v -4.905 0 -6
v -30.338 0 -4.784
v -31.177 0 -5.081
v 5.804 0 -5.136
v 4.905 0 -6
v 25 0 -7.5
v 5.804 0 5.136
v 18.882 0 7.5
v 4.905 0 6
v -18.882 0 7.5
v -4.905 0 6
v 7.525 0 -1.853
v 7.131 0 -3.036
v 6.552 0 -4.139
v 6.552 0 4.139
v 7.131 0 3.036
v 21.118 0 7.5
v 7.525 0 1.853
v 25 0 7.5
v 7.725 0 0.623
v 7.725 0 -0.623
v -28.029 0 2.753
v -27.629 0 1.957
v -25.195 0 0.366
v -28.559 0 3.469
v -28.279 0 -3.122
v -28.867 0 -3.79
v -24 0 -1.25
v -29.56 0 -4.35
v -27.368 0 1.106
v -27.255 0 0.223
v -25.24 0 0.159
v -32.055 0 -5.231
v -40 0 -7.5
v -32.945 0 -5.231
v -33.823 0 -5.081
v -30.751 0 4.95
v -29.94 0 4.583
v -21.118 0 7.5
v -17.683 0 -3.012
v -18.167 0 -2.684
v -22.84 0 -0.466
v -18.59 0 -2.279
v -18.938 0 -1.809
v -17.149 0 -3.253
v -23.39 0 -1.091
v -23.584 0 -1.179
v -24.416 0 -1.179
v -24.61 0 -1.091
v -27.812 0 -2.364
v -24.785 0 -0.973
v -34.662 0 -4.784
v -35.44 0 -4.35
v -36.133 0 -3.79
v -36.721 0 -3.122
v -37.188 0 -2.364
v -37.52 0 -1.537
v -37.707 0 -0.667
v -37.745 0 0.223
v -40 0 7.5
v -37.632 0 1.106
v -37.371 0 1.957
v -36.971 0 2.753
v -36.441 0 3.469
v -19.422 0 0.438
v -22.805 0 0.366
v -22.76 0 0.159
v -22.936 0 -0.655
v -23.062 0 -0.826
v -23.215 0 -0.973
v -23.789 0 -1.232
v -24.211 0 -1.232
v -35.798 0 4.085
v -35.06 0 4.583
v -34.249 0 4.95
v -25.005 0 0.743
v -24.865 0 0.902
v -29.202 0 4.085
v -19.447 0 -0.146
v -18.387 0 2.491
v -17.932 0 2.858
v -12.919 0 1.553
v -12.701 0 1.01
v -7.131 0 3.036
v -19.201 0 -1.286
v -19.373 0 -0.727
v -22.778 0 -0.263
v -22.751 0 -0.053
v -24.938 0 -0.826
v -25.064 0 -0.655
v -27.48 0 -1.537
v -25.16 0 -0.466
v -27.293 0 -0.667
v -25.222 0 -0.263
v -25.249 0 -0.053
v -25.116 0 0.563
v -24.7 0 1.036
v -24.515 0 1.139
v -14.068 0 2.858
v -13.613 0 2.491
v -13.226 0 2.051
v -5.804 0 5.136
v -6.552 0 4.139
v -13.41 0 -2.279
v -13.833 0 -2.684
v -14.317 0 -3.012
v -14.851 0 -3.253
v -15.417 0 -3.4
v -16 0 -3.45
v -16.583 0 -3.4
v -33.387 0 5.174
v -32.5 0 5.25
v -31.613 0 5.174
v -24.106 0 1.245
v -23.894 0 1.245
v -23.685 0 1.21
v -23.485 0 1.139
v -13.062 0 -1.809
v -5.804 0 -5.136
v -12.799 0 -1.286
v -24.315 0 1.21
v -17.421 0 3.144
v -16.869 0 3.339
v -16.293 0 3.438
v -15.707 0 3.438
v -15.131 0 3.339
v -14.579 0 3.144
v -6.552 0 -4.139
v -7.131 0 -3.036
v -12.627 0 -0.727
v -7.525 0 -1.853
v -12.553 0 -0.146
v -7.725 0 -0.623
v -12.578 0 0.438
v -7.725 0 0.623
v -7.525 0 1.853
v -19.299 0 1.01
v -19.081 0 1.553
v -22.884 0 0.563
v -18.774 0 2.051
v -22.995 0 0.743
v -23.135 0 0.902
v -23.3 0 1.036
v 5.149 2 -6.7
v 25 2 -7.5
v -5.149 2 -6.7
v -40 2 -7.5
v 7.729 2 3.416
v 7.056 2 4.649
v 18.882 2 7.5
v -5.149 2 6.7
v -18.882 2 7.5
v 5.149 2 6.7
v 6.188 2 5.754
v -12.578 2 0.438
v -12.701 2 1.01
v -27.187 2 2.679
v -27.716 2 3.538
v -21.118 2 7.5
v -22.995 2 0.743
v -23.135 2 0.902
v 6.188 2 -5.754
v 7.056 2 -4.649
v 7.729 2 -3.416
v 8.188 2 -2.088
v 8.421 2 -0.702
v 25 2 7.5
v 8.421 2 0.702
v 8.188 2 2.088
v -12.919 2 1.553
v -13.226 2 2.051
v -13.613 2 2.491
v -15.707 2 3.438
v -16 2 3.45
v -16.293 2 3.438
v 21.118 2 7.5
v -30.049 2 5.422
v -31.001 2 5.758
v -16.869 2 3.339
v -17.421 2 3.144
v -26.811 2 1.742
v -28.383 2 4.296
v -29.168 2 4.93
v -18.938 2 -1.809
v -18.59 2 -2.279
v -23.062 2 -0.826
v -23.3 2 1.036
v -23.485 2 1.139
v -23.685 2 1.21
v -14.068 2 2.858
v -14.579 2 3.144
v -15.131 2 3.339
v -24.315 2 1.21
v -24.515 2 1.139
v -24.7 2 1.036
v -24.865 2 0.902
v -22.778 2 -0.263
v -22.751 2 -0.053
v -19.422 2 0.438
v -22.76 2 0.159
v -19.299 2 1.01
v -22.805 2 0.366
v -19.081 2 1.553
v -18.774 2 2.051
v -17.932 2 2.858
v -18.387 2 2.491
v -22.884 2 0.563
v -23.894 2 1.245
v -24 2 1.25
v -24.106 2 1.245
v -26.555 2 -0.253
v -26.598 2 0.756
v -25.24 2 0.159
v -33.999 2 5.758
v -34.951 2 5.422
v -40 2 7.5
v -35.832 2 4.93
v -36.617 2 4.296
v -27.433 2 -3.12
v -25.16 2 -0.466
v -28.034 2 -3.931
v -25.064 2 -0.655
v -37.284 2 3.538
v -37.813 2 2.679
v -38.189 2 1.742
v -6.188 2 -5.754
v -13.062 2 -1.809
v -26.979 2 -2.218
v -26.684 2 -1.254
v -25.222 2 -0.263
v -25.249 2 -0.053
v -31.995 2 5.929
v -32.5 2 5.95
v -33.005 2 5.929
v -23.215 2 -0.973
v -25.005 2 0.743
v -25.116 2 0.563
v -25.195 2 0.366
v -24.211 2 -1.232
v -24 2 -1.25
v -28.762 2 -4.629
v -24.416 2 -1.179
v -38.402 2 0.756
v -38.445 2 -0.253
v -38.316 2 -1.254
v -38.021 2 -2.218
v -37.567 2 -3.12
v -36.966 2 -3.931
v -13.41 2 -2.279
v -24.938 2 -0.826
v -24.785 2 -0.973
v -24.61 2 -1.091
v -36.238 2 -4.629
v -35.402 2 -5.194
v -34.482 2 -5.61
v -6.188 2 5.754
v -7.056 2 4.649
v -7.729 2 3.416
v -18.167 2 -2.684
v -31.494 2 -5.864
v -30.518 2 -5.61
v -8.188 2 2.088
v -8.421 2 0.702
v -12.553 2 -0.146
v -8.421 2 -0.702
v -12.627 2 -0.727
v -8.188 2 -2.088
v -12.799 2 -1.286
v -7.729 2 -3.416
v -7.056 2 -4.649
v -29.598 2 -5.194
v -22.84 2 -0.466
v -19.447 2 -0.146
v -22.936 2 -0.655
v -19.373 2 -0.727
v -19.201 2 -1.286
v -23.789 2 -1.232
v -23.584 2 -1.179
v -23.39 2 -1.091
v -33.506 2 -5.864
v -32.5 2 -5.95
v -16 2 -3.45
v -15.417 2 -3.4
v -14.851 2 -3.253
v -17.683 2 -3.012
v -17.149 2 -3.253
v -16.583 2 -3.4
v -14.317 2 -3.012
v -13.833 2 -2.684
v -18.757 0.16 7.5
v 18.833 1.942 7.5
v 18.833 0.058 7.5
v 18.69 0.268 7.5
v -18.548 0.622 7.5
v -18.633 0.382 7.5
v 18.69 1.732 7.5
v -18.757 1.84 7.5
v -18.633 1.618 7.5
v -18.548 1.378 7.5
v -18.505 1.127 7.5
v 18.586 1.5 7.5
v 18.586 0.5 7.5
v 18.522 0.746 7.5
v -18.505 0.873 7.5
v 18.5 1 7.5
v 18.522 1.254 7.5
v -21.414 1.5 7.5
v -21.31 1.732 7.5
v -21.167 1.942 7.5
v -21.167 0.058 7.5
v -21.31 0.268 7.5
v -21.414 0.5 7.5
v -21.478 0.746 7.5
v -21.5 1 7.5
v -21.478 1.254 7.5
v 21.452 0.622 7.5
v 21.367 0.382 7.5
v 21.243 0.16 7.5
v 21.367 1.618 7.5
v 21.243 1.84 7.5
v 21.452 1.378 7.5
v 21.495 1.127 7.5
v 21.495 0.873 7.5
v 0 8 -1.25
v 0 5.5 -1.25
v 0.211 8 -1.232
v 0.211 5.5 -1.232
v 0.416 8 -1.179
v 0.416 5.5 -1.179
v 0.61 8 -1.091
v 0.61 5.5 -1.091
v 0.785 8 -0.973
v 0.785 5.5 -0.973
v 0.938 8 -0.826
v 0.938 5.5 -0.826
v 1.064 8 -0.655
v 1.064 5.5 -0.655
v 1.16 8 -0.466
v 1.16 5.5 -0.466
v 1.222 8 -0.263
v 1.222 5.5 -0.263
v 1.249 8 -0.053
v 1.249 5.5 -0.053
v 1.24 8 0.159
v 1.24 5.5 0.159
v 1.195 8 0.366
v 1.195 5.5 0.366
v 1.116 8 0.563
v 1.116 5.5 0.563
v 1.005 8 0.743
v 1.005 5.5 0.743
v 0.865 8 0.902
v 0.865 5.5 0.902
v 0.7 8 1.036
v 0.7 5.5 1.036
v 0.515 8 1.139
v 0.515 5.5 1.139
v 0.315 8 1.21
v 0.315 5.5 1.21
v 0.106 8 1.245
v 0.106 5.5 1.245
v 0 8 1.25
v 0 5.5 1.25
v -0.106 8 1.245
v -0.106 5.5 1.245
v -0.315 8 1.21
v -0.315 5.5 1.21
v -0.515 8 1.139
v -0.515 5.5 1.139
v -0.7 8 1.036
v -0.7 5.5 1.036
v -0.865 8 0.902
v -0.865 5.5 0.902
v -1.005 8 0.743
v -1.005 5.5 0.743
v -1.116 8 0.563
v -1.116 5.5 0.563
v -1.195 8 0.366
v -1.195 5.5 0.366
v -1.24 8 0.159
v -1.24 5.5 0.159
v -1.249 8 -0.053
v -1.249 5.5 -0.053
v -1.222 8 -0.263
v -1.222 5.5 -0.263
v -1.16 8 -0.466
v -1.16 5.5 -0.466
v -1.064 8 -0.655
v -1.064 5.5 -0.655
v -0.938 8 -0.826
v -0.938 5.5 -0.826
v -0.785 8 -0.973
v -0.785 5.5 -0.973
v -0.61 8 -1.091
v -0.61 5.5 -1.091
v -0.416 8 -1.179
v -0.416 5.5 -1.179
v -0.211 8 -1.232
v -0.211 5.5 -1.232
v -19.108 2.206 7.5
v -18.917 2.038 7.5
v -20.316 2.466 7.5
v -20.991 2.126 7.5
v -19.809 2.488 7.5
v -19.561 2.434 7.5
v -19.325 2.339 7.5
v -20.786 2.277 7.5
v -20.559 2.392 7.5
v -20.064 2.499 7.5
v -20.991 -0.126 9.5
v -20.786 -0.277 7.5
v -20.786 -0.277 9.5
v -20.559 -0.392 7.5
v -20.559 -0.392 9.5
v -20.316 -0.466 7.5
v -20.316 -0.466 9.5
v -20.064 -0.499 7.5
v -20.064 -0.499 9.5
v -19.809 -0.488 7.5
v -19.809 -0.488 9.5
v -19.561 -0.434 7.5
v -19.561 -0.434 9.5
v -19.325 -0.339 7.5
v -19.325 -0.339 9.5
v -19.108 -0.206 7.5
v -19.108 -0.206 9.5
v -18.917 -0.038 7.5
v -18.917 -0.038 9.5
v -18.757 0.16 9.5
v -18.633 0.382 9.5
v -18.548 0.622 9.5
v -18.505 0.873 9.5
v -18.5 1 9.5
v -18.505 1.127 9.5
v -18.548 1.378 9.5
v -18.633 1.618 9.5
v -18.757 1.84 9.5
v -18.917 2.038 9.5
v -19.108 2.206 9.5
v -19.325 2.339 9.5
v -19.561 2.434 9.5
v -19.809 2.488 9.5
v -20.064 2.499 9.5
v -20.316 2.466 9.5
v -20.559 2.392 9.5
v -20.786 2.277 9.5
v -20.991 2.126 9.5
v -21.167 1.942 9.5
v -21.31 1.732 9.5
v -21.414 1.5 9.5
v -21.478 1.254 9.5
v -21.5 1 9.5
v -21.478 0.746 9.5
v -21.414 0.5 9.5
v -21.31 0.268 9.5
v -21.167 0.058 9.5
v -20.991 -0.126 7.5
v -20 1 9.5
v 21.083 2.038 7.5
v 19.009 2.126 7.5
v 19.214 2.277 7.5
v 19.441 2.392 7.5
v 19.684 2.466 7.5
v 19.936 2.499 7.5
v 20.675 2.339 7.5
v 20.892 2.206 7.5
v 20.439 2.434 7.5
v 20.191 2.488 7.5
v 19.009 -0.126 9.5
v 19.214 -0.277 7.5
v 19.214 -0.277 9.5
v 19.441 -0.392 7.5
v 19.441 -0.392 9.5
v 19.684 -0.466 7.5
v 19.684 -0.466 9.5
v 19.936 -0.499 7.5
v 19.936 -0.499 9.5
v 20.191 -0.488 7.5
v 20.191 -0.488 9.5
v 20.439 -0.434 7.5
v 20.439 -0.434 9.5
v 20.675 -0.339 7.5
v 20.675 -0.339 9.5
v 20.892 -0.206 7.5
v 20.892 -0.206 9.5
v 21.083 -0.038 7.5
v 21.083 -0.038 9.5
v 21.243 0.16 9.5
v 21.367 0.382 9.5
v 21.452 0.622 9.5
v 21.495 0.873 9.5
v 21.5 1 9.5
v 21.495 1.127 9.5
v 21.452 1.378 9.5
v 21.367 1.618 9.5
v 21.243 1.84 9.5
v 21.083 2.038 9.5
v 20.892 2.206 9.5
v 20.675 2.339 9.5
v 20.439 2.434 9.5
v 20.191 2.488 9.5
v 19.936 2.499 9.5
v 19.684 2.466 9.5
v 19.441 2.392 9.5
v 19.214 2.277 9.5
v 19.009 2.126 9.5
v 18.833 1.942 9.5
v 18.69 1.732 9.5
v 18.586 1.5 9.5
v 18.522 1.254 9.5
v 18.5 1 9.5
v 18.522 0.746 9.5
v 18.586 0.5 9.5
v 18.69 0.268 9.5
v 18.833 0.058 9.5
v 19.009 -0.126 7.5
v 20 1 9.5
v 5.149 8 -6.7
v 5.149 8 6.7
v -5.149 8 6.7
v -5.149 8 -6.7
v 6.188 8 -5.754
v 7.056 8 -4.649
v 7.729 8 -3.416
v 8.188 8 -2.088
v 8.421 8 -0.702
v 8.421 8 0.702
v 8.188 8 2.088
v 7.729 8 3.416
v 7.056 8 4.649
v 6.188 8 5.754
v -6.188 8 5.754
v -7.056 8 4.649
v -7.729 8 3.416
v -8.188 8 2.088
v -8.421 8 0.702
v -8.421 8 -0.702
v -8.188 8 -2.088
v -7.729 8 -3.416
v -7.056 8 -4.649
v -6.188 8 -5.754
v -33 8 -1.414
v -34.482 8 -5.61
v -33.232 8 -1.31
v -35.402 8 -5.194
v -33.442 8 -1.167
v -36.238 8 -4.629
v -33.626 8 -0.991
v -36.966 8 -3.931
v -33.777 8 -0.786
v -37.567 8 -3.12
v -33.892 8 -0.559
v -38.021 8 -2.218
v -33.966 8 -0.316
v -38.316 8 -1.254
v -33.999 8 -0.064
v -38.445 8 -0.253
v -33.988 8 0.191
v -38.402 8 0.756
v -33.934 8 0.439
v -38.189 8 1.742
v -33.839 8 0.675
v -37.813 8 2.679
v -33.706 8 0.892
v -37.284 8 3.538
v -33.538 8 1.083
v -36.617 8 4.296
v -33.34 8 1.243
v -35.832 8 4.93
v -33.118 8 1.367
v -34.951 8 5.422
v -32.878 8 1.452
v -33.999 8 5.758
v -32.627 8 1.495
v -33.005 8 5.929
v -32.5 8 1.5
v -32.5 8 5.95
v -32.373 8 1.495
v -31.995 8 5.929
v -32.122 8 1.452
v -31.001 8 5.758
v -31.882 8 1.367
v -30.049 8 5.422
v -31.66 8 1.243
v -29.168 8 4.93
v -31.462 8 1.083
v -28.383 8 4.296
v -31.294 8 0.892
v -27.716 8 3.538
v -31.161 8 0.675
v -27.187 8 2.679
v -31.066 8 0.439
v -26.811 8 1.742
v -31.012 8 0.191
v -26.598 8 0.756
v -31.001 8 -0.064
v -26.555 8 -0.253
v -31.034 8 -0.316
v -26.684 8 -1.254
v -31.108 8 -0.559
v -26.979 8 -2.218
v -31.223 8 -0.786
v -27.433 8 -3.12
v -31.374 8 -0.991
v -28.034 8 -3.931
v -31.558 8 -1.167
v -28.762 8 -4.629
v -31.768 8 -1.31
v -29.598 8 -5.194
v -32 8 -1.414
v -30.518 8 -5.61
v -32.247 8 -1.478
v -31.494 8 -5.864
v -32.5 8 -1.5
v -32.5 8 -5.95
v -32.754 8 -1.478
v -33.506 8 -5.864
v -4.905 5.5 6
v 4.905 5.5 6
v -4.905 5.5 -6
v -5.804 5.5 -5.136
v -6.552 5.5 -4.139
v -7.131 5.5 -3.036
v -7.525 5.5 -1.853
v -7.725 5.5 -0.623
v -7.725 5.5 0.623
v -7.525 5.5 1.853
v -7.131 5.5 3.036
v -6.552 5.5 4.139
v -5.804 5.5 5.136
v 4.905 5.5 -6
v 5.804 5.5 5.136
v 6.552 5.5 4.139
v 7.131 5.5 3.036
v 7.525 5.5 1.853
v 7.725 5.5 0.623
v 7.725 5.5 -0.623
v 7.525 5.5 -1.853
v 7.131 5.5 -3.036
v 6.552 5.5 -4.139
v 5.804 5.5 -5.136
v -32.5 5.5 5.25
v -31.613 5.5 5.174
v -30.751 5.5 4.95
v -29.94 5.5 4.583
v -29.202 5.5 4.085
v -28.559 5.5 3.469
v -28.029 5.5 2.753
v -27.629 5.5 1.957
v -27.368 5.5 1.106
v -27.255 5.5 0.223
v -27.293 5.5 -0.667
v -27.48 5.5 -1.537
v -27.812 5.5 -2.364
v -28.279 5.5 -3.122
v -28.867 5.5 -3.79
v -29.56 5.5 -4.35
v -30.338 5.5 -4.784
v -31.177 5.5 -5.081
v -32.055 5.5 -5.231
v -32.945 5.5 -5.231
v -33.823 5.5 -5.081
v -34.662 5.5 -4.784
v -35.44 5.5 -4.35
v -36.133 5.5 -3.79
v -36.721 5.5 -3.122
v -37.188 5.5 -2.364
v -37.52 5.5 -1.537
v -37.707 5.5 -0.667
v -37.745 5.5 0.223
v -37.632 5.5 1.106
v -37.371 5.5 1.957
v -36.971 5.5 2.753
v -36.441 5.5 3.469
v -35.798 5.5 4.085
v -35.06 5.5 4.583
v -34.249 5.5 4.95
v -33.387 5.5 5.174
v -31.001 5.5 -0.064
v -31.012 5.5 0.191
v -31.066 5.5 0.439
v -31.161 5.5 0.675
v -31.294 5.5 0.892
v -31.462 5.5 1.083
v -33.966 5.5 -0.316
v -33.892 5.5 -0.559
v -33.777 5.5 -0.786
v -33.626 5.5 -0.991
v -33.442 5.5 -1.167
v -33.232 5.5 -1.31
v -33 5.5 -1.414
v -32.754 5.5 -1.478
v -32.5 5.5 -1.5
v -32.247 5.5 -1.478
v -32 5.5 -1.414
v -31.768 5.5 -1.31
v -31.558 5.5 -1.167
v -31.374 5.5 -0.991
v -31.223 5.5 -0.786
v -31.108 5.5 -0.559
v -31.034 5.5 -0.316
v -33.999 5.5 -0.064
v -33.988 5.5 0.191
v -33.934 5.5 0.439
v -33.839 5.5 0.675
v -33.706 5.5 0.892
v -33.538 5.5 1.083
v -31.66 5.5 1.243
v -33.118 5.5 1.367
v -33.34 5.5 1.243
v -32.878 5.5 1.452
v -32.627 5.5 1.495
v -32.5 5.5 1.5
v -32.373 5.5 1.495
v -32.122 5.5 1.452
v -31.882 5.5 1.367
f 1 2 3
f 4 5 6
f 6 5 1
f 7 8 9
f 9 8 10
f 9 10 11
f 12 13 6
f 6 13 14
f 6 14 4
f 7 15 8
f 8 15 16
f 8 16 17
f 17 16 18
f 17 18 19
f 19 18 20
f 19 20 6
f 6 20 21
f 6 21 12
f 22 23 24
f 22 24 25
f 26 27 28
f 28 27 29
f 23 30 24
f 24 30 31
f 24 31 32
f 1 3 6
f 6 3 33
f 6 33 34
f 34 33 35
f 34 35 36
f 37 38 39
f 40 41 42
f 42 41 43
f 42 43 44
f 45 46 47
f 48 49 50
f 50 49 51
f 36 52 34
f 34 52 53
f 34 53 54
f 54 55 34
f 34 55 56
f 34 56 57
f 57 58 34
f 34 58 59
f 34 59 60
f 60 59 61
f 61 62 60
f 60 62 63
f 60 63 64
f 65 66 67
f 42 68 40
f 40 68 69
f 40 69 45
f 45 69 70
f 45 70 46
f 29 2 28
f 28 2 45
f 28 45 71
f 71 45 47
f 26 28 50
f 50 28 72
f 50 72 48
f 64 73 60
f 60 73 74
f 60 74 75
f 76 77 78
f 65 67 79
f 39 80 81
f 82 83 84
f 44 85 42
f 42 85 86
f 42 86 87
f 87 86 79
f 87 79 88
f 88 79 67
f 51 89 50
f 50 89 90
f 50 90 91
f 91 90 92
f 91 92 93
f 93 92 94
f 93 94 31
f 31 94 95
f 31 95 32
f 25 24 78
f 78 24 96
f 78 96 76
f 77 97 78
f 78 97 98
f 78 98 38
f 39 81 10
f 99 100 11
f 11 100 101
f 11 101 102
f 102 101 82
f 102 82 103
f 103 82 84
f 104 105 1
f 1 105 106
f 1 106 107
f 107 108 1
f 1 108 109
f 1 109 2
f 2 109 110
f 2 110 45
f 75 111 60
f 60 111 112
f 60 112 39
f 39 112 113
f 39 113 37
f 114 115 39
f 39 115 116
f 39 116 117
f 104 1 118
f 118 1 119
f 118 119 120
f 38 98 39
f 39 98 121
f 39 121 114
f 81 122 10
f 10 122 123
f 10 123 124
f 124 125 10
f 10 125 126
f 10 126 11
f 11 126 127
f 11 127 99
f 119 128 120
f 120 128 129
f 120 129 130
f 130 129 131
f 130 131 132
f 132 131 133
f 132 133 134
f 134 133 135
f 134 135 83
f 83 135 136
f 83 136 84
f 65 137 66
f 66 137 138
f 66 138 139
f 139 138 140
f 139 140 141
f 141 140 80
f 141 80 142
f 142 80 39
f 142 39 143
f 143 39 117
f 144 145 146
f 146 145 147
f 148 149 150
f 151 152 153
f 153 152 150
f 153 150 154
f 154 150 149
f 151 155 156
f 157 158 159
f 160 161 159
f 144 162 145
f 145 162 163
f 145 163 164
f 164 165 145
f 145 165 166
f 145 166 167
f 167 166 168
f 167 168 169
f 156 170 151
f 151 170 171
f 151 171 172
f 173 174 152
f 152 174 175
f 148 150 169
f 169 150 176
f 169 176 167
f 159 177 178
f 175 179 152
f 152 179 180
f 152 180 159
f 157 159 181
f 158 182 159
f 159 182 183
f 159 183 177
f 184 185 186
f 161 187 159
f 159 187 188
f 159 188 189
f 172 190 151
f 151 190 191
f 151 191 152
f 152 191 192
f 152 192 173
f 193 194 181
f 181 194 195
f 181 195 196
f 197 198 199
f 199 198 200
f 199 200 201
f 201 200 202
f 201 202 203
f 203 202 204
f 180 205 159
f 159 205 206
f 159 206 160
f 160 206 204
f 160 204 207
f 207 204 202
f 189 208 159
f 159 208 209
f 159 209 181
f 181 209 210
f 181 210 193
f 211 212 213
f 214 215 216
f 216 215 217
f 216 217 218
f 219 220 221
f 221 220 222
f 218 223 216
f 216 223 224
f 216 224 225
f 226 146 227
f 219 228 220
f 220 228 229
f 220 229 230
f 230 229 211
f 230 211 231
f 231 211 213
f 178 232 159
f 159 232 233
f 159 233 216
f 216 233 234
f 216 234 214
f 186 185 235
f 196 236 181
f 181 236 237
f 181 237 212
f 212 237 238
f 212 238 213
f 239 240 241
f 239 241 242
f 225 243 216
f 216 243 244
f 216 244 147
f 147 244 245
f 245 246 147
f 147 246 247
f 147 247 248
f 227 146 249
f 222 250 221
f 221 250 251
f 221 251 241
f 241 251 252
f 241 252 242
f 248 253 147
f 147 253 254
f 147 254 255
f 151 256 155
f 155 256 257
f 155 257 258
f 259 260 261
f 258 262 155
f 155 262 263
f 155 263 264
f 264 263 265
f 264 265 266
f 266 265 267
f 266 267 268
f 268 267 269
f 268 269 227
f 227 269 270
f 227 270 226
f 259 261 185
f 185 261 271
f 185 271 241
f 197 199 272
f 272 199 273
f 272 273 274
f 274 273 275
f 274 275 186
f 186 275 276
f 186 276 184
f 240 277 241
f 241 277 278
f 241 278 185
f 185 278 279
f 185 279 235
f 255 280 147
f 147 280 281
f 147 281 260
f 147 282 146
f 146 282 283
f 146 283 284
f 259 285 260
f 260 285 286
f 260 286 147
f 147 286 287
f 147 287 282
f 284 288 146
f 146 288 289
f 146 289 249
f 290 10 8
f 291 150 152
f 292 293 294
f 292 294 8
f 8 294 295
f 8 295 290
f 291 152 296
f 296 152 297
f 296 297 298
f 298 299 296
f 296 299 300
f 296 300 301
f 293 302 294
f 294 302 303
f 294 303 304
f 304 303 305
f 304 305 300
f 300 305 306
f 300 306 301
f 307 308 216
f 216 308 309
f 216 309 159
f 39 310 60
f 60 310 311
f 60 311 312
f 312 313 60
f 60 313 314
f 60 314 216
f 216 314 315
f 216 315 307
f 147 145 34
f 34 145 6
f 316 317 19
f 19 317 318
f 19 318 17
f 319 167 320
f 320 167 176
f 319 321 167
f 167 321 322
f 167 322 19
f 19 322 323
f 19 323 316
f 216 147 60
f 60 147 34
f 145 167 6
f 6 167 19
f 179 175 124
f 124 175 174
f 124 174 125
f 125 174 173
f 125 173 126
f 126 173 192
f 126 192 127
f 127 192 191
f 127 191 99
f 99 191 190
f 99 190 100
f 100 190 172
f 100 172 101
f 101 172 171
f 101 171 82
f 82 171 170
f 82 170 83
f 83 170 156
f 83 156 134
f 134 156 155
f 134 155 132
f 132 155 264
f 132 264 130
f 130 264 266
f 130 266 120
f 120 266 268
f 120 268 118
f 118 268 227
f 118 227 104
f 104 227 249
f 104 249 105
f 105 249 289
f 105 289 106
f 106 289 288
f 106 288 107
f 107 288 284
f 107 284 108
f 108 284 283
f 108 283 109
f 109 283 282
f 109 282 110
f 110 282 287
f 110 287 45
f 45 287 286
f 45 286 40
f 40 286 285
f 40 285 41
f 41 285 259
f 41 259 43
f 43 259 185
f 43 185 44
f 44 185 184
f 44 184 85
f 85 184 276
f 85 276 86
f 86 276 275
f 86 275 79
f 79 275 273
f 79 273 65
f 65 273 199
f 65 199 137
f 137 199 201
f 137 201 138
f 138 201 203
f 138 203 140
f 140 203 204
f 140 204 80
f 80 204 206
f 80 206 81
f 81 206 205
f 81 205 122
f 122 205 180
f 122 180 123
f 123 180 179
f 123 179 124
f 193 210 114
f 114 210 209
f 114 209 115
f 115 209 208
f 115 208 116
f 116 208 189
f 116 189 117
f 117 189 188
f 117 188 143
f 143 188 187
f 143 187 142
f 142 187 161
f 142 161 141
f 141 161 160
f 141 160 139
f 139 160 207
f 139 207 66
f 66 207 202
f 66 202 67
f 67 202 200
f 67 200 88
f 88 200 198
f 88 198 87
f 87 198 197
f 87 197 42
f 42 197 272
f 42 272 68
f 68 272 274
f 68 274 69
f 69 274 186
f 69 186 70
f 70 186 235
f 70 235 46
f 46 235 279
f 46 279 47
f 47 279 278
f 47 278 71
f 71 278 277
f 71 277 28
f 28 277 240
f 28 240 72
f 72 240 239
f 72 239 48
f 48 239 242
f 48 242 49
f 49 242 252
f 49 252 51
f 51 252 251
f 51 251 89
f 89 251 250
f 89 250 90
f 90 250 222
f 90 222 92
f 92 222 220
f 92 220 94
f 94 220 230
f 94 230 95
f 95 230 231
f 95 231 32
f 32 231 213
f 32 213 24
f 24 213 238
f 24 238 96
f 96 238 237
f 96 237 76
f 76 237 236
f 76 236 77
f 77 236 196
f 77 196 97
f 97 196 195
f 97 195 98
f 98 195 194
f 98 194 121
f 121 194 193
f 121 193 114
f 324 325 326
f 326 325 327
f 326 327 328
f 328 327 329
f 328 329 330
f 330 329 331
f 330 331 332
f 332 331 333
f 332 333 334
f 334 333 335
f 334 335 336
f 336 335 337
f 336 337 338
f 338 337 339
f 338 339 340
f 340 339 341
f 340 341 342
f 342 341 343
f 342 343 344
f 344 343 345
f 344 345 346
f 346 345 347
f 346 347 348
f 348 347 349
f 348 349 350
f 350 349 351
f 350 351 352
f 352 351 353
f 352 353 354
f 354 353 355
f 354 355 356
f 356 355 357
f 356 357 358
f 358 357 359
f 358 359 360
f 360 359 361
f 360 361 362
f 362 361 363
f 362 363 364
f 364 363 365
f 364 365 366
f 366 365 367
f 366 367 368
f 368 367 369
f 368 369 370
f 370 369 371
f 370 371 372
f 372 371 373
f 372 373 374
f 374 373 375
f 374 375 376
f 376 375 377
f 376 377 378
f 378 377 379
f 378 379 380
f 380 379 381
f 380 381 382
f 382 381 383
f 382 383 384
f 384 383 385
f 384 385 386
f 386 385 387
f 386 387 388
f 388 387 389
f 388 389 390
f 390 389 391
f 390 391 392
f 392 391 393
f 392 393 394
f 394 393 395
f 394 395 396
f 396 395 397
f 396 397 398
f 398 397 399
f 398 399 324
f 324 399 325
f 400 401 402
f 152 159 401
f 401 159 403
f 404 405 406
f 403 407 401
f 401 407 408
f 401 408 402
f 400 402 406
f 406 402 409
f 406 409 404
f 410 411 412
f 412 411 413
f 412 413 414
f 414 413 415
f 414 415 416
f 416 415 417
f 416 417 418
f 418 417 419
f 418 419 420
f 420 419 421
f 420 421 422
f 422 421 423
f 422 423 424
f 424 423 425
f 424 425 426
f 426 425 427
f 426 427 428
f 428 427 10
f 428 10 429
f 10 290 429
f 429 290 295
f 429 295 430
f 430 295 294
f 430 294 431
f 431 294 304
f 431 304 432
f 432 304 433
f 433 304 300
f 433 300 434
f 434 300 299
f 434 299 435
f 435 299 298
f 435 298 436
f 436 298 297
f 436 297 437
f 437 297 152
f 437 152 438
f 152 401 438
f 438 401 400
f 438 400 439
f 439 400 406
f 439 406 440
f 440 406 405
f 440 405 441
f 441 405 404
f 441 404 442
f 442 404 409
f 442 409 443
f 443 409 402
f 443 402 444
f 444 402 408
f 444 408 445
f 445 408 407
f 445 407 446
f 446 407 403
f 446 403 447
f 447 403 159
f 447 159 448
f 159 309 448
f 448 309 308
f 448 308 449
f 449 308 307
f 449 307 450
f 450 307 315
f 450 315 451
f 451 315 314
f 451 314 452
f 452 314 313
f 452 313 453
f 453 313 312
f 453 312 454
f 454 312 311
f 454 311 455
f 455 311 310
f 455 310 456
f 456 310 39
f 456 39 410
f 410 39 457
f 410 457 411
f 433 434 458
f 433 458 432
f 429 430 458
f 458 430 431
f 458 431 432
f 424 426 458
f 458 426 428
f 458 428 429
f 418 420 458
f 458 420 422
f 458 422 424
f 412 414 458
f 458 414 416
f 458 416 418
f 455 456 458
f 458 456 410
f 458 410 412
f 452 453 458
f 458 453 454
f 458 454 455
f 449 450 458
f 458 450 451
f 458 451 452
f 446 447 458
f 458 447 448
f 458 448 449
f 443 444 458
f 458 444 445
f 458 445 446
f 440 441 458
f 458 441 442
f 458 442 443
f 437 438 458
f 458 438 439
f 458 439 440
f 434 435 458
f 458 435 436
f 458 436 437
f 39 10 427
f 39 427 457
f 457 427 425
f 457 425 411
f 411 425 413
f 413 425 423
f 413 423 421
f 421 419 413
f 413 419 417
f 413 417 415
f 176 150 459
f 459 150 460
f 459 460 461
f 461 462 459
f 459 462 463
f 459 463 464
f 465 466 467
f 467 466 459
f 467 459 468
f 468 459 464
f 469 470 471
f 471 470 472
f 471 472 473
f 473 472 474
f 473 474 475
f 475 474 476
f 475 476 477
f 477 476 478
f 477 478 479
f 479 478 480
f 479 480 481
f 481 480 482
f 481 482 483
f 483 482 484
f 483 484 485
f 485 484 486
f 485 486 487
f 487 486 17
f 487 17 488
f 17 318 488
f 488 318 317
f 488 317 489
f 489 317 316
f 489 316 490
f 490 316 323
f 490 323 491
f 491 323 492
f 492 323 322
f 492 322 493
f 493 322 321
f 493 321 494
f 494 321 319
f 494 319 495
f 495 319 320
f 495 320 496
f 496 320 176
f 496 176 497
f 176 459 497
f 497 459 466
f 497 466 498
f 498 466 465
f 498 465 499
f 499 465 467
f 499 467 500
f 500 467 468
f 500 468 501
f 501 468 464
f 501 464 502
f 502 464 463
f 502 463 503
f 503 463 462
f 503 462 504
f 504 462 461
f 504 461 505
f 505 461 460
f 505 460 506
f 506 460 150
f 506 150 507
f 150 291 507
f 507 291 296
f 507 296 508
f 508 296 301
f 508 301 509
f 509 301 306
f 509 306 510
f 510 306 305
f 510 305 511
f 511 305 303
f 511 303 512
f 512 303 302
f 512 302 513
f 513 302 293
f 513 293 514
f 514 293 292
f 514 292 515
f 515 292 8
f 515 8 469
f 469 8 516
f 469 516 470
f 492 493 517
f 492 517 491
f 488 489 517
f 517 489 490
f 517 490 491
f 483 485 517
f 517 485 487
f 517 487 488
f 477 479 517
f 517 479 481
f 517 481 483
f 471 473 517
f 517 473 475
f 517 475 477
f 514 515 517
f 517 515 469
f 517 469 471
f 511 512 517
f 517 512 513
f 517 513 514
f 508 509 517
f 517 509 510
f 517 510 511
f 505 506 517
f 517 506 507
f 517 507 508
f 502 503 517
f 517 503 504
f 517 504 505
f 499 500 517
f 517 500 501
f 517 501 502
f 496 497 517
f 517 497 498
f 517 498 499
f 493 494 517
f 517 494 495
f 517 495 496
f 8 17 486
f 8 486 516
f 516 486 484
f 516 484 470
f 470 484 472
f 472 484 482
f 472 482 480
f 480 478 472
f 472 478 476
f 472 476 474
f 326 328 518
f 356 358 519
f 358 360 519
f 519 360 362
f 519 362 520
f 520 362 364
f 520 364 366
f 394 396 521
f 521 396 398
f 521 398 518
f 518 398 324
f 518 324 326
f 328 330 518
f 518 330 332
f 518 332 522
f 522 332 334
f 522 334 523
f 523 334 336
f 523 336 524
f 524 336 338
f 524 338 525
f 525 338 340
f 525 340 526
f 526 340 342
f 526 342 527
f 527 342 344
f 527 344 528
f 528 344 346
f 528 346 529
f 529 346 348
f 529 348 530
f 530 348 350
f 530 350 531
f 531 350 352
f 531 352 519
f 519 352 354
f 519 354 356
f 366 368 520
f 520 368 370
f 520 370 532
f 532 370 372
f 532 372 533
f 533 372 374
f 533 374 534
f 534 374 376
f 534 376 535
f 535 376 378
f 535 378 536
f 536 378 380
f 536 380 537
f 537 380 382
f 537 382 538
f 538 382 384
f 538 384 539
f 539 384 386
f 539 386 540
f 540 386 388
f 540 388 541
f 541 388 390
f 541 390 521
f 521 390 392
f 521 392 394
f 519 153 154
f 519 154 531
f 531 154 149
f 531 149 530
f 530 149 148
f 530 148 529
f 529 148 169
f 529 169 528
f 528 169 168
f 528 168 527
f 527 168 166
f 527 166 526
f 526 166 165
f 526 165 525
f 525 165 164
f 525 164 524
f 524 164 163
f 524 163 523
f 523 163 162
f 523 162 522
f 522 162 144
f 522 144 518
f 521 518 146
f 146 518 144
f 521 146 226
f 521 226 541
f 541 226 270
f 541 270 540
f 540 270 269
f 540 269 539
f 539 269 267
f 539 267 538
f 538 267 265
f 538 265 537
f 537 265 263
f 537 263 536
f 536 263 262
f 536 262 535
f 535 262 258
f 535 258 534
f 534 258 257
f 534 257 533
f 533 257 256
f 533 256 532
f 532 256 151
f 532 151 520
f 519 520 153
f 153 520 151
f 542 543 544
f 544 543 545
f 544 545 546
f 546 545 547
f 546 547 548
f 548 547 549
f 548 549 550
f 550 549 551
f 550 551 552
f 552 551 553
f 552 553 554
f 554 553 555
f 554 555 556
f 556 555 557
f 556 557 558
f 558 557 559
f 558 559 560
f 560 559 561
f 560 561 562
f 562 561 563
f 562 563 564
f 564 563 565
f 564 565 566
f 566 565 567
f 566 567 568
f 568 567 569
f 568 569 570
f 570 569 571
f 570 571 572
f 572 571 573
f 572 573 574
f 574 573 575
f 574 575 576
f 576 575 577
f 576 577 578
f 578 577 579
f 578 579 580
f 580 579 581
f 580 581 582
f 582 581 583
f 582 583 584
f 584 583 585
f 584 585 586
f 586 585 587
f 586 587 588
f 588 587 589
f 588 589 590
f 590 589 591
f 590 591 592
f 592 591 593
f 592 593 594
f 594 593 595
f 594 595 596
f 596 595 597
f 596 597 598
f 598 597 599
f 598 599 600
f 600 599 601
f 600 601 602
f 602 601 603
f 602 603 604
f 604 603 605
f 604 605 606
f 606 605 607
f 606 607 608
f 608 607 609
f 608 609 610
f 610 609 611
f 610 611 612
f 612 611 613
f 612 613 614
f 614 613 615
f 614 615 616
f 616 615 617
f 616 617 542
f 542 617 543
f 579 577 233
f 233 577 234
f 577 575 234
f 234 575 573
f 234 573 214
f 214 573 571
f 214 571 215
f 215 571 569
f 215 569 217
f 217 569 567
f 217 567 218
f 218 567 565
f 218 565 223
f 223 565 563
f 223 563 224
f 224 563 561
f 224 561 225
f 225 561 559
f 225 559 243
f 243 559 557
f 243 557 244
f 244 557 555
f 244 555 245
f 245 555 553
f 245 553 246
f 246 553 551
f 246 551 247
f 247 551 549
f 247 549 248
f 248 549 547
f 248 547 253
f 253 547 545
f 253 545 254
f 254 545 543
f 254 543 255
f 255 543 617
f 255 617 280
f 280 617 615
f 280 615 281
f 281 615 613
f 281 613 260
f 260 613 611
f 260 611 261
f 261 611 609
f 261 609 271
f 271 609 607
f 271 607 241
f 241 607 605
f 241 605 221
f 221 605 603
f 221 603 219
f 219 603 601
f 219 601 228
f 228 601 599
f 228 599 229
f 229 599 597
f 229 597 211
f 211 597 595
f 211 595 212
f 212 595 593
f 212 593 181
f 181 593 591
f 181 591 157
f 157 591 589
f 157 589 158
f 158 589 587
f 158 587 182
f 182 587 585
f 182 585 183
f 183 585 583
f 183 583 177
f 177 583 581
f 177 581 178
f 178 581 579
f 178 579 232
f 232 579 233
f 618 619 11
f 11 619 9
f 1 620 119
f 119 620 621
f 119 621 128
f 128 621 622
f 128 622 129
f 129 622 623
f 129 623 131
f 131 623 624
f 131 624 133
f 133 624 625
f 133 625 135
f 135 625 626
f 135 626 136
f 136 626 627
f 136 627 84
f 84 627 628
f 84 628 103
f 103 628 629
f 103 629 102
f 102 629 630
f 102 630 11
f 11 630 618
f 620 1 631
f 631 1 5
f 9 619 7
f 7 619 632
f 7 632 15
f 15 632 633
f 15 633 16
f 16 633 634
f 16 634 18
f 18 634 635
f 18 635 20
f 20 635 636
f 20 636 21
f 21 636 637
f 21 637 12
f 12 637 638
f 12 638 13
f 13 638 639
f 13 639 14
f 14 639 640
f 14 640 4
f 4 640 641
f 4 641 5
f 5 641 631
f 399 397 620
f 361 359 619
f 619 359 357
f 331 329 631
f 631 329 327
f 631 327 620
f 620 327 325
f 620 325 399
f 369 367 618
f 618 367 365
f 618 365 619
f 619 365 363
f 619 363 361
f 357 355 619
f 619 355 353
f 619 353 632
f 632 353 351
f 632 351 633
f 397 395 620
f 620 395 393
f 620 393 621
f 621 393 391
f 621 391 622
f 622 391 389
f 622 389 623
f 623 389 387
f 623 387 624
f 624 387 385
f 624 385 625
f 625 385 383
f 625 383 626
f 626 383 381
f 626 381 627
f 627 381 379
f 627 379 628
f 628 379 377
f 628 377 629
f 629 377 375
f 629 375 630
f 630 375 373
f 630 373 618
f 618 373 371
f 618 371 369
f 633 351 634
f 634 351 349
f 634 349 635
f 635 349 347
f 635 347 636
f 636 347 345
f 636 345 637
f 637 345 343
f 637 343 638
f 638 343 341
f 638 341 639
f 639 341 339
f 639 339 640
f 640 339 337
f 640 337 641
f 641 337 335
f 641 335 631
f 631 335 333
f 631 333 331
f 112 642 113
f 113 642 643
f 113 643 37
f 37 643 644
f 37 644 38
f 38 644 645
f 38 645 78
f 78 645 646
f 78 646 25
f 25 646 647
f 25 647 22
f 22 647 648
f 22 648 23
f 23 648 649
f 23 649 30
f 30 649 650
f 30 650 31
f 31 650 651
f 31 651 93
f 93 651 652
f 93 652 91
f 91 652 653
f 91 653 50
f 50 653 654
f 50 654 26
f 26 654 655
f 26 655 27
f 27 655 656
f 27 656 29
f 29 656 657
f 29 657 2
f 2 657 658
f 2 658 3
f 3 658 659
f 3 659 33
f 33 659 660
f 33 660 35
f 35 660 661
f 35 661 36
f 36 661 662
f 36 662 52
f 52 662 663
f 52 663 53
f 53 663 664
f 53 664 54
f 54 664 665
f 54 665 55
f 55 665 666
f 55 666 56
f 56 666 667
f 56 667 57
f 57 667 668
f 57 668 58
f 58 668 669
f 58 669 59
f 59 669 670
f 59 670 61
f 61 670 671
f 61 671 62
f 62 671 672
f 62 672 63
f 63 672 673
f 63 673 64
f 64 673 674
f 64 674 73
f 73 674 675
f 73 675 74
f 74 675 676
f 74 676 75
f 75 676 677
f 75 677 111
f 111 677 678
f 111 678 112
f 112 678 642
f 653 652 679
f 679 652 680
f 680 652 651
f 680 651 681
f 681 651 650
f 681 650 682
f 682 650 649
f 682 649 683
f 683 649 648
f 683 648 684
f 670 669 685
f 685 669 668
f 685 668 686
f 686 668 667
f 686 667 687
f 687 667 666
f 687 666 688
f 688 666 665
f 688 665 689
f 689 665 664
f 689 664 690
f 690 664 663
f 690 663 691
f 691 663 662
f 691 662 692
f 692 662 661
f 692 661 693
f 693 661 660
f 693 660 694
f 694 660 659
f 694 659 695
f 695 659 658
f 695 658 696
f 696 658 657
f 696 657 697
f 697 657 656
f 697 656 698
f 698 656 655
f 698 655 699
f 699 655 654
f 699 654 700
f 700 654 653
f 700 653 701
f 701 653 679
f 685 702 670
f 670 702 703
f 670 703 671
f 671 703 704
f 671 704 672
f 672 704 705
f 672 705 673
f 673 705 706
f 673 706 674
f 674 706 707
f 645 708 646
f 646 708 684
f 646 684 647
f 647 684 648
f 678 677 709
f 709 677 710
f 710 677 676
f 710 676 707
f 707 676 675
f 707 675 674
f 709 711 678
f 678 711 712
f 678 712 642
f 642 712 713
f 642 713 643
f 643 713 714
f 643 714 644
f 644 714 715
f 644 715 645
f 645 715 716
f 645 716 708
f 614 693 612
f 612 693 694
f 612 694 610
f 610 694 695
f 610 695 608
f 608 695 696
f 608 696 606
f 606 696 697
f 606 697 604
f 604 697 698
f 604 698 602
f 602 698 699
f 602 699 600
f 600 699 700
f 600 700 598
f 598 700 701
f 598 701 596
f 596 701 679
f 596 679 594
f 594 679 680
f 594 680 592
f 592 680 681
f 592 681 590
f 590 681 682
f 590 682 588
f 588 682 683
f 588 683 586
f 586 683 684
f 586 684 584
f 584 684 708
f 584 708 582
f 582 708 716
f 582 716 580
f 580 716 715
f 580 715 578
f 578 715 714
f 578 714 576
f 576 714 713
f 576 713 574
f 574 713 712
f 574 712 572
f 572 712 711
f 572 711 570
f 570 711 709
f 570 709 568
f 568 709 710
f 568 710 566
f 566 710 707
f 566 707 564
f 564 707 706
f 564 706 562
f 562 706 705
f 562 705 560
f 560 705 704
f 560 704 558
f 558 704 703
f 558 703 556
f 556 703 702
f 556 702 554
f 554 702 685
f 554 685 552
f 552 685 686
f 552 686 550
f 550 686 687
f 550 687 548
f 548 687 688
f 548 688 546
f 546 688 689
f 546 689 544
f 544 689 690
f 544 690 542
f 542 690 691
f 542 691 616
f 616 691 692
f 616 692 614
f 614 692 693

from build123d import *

# Parameters (mm, degrees)
SKETCH_1_W               = 65
SKETCH_1_H               = 15
EXTRUDE_1_DEPTH          = 2
SKETCH_2_R               = 1.25
SKETCH_2_R_2             = 3.45
SKETCH_2_R_3             = 1.5
CUT_EXTRUDE_1_DEPTH      = 2
SKETCH_4_R               = 1.5
EXTRUDE_2_DEPTH          = 2
SKETCH_5_R               = 5.95
SKETCH_5_R_2             = 5.25
EXTRUDE_3_DEPTH          = 6
SKETCH_5_8_R             = 1.25
SKETCH_5_8_R_2           = 5.25
EXTRUDE_4_DEPTH          = 6
CUT_EXTRUDE_2_DEPTH      = 3.5
CUT_EXTRUDE_2_DEPTH_BACK = 42.548164821
SKETCH_5_11_R            = 1.25
SKETCH_5_11_R_2          = 5.25
SKETCH_2_3_R             = 1.5
CUT_EXTRUDE_3_DEPTH      = 8


with BuildPart() as part:
    # 草图1 → 凸台-拉伸1 (new body)
    with BuildSketch(Plane(origin=(0, 0, 0), x_dir=(1, 0, 0), z_dir=(0, 1, 0))):
        with Locations((-7.5, 0)):
            Rectangle(SKETCH_1_W, SKETCH_1_H)
    extrude(amount=EXTRUDE_1_DEPTH)

    # 草图2 → 切除-拉伸1 (cut)
    with BuildSketch(Plane(origin=(0, 0, 0), x_dir=(1, 0, 0), z_dir=(0, 1, 0))):
        with Locations(Location((0, 0, 0), (0, 0, 270))):
            Circle(SKETCH_2_R)
        with Locations(Location((-16, 0, 0), (0, 0, 90))):
            Circle(SKETCH_2_R_2)
        with Locations(Location((-24, 0, 0), (0, 0, 90))):
            Circle(SKETCH_2_R)
        with Locations(Location((-32.5, 0, 0), (0, 0, 270))):
            Circle(SKETCH_2_R_3)
    extrude(amount=CUT_EXTRUDE_1_DEPTH, mode=Mode.SUBTRACT)

    # 草图4 → 凸台-拉伸2 (add)
    with BuildSketch(Plane.XY.offset(7.5)):
        with Locations(Location((20, 1, 0), (0, 0, 221.810314896))):
            Circle(SKETCH_4_R)
        with Locations(Location((-20, 1, 0), (0, 0, 221.810314896))):
            Circle(SKETCH_4_R)
    extrude(amount=EXTRUDE_2_DEPTH)

    # 草图5 → 凸台-拉伸3 (add)
    # profile 1 of 2: a face of its own
    with BuildSketch(Plane(origin=(0, 2, 0), x_dir=(1, 0, 0), z_dir=(0, 1, 0))):
        with Locations(Location((-32.5, 0, 0), (0, 0, 270))):
            Circle(SKETCH_5_R)
        with Locations(Location((-32.5, 0, 0), (0, 0, 270))):
            Circle(SKETCH_5_R_2, mode=Mode.SUBTRACT)
    # profile 2 of 2: a face of its own
    with BuildSketch(Plane(origin=(0, 2, 0), x_dir=(1, 0, 0), z_dir=(0, 1, 0))):
        with BuildLine():
            Line((5.149029035, -6.7), (-5.149029035, -6.7))
            ThreePointArc((-5.149029035, -6.7), (-8.45, 0), (-5.149029035, 6.7))
            Line((-5.149029035, 6.7), (5.149029035, 6.7))
            ThreePointArc((5.149029035, 6.7), (8.45, 0), (5.149029035, -6.7))
        make_face()
        with BuildLine():
            Line((4.905354218, -6), (-4.905354218, -6))
            ThreePointArc((-4.905354218, -6), (-7.75, 0), (-4.905354218, 6))
            Line((-4.905354218, 6), (4.905354218, 6))
            ThreePointArc((4.905354218, 6), (7.75, 0), (4.905354218, -6))
        make_face(mode=Mode.SUBTRACT)
    extrude(amount=EXTRUDE_3_DEPTH)

    # 草图5<8> → 凸台-拉伸4 (add)
    # profile 1 of 2: a face of its own
    with BuildSketch(Plane(origin=(0, 2, 0), x_dir=(1, 0, 0), z_dir=(0, 1, 0))):
        with BuildLine():
            Line((4.905354218, -6), (-4.905354218, -6))
            ThreePointArc((-4.905354218, -6), (-7.75, 0), (-4.905354218, 6))
            Line((-4.905354218, 6), (4.905354218, 6))
            ThreePointArc((4.905354218, 6), (7.75, 0), (4.905354218, -6))
        make_face()
        with Locations(Location((0, 0, 0), (0, 0, 270))):
            Circle(SKETCH_5_8_R, mode=Mode.SUBTRACT)
    # profile 2 of 2: a face of its own
    with BuildSketch(Plane(origin=(0, 2, 0), x_dir=(1, 0, 0), z_dir=(0, 1, 0))):
        with Locations((-32.5, 0)):
            Circle(SKETCH_5_8_R_2)
    extrude(amount=EXTRUDE_4_DEPTH)

    # 草图5<11> → 切除-拉伸2 (cut, two sides: drawn at the far end of the back side and taken through both)
    # profile 1 of 2: a face of its own
    with BuildSketch(Plane(origin=(0, 2, 0), x_dir=(1, 0, 0), z_dir=(0, 1, 0)).offset(-CUT_EXTRUDE_2_DEPTH_BACK)):
        with BuildLine():
            Line((4.905354218, -6), (-4.905354218, -6))
            ThreePointArc((-4.905354218, -6), (-7.75, 0), (-4.905354218, 6))
            Line((-4.905354218, 6), (4.905354218, 6))
            ThreePointArc((4.905354218, 6), (7.75, 0), (4.905354218, -6))
        make_face()
        with Locations(Location((0, 0, 0), (0, 0, 270))):
            Circle(SKETCH_5_11_R, mode=Mode.SUBTRACT)
    # profile 2 of 2: a face of its own
    with BuildSketch(Plane(origin=(0, 2, 0), x_dir=(1, 0, 0), z_dir=(0, 1, 0)).offset(-CUT_EXTRUDE_2_DEPTH_BACK)):
        with Locations(Location((-32.5, 0, 0), (0, 0, 270))):
            Circle(SKETCH_5_11_R_2)
    extrude(amount=CUT_EXTRUDE_2_DEPTH + CUT_EXTRUDE_2_DEPTH_BACK, mode=Mode.SUBTRACT)

    # 草图2<3> → 切除-拉伸3 (cut)
    with BuildSketch(Plane(origin=(0, 0, 0), x_dir=(1, 0, 0), z_dir=(0, 1, 0))):
        with Locations(Location((-32.5, 0, 0), (0, 0, 270))):
            Circle(SKETCH_2_3_R)
    extrude(amount=CUT_EXTRUDE_3_DEPTH, mode=Mode.SUBTRACT)


solid = part.part
